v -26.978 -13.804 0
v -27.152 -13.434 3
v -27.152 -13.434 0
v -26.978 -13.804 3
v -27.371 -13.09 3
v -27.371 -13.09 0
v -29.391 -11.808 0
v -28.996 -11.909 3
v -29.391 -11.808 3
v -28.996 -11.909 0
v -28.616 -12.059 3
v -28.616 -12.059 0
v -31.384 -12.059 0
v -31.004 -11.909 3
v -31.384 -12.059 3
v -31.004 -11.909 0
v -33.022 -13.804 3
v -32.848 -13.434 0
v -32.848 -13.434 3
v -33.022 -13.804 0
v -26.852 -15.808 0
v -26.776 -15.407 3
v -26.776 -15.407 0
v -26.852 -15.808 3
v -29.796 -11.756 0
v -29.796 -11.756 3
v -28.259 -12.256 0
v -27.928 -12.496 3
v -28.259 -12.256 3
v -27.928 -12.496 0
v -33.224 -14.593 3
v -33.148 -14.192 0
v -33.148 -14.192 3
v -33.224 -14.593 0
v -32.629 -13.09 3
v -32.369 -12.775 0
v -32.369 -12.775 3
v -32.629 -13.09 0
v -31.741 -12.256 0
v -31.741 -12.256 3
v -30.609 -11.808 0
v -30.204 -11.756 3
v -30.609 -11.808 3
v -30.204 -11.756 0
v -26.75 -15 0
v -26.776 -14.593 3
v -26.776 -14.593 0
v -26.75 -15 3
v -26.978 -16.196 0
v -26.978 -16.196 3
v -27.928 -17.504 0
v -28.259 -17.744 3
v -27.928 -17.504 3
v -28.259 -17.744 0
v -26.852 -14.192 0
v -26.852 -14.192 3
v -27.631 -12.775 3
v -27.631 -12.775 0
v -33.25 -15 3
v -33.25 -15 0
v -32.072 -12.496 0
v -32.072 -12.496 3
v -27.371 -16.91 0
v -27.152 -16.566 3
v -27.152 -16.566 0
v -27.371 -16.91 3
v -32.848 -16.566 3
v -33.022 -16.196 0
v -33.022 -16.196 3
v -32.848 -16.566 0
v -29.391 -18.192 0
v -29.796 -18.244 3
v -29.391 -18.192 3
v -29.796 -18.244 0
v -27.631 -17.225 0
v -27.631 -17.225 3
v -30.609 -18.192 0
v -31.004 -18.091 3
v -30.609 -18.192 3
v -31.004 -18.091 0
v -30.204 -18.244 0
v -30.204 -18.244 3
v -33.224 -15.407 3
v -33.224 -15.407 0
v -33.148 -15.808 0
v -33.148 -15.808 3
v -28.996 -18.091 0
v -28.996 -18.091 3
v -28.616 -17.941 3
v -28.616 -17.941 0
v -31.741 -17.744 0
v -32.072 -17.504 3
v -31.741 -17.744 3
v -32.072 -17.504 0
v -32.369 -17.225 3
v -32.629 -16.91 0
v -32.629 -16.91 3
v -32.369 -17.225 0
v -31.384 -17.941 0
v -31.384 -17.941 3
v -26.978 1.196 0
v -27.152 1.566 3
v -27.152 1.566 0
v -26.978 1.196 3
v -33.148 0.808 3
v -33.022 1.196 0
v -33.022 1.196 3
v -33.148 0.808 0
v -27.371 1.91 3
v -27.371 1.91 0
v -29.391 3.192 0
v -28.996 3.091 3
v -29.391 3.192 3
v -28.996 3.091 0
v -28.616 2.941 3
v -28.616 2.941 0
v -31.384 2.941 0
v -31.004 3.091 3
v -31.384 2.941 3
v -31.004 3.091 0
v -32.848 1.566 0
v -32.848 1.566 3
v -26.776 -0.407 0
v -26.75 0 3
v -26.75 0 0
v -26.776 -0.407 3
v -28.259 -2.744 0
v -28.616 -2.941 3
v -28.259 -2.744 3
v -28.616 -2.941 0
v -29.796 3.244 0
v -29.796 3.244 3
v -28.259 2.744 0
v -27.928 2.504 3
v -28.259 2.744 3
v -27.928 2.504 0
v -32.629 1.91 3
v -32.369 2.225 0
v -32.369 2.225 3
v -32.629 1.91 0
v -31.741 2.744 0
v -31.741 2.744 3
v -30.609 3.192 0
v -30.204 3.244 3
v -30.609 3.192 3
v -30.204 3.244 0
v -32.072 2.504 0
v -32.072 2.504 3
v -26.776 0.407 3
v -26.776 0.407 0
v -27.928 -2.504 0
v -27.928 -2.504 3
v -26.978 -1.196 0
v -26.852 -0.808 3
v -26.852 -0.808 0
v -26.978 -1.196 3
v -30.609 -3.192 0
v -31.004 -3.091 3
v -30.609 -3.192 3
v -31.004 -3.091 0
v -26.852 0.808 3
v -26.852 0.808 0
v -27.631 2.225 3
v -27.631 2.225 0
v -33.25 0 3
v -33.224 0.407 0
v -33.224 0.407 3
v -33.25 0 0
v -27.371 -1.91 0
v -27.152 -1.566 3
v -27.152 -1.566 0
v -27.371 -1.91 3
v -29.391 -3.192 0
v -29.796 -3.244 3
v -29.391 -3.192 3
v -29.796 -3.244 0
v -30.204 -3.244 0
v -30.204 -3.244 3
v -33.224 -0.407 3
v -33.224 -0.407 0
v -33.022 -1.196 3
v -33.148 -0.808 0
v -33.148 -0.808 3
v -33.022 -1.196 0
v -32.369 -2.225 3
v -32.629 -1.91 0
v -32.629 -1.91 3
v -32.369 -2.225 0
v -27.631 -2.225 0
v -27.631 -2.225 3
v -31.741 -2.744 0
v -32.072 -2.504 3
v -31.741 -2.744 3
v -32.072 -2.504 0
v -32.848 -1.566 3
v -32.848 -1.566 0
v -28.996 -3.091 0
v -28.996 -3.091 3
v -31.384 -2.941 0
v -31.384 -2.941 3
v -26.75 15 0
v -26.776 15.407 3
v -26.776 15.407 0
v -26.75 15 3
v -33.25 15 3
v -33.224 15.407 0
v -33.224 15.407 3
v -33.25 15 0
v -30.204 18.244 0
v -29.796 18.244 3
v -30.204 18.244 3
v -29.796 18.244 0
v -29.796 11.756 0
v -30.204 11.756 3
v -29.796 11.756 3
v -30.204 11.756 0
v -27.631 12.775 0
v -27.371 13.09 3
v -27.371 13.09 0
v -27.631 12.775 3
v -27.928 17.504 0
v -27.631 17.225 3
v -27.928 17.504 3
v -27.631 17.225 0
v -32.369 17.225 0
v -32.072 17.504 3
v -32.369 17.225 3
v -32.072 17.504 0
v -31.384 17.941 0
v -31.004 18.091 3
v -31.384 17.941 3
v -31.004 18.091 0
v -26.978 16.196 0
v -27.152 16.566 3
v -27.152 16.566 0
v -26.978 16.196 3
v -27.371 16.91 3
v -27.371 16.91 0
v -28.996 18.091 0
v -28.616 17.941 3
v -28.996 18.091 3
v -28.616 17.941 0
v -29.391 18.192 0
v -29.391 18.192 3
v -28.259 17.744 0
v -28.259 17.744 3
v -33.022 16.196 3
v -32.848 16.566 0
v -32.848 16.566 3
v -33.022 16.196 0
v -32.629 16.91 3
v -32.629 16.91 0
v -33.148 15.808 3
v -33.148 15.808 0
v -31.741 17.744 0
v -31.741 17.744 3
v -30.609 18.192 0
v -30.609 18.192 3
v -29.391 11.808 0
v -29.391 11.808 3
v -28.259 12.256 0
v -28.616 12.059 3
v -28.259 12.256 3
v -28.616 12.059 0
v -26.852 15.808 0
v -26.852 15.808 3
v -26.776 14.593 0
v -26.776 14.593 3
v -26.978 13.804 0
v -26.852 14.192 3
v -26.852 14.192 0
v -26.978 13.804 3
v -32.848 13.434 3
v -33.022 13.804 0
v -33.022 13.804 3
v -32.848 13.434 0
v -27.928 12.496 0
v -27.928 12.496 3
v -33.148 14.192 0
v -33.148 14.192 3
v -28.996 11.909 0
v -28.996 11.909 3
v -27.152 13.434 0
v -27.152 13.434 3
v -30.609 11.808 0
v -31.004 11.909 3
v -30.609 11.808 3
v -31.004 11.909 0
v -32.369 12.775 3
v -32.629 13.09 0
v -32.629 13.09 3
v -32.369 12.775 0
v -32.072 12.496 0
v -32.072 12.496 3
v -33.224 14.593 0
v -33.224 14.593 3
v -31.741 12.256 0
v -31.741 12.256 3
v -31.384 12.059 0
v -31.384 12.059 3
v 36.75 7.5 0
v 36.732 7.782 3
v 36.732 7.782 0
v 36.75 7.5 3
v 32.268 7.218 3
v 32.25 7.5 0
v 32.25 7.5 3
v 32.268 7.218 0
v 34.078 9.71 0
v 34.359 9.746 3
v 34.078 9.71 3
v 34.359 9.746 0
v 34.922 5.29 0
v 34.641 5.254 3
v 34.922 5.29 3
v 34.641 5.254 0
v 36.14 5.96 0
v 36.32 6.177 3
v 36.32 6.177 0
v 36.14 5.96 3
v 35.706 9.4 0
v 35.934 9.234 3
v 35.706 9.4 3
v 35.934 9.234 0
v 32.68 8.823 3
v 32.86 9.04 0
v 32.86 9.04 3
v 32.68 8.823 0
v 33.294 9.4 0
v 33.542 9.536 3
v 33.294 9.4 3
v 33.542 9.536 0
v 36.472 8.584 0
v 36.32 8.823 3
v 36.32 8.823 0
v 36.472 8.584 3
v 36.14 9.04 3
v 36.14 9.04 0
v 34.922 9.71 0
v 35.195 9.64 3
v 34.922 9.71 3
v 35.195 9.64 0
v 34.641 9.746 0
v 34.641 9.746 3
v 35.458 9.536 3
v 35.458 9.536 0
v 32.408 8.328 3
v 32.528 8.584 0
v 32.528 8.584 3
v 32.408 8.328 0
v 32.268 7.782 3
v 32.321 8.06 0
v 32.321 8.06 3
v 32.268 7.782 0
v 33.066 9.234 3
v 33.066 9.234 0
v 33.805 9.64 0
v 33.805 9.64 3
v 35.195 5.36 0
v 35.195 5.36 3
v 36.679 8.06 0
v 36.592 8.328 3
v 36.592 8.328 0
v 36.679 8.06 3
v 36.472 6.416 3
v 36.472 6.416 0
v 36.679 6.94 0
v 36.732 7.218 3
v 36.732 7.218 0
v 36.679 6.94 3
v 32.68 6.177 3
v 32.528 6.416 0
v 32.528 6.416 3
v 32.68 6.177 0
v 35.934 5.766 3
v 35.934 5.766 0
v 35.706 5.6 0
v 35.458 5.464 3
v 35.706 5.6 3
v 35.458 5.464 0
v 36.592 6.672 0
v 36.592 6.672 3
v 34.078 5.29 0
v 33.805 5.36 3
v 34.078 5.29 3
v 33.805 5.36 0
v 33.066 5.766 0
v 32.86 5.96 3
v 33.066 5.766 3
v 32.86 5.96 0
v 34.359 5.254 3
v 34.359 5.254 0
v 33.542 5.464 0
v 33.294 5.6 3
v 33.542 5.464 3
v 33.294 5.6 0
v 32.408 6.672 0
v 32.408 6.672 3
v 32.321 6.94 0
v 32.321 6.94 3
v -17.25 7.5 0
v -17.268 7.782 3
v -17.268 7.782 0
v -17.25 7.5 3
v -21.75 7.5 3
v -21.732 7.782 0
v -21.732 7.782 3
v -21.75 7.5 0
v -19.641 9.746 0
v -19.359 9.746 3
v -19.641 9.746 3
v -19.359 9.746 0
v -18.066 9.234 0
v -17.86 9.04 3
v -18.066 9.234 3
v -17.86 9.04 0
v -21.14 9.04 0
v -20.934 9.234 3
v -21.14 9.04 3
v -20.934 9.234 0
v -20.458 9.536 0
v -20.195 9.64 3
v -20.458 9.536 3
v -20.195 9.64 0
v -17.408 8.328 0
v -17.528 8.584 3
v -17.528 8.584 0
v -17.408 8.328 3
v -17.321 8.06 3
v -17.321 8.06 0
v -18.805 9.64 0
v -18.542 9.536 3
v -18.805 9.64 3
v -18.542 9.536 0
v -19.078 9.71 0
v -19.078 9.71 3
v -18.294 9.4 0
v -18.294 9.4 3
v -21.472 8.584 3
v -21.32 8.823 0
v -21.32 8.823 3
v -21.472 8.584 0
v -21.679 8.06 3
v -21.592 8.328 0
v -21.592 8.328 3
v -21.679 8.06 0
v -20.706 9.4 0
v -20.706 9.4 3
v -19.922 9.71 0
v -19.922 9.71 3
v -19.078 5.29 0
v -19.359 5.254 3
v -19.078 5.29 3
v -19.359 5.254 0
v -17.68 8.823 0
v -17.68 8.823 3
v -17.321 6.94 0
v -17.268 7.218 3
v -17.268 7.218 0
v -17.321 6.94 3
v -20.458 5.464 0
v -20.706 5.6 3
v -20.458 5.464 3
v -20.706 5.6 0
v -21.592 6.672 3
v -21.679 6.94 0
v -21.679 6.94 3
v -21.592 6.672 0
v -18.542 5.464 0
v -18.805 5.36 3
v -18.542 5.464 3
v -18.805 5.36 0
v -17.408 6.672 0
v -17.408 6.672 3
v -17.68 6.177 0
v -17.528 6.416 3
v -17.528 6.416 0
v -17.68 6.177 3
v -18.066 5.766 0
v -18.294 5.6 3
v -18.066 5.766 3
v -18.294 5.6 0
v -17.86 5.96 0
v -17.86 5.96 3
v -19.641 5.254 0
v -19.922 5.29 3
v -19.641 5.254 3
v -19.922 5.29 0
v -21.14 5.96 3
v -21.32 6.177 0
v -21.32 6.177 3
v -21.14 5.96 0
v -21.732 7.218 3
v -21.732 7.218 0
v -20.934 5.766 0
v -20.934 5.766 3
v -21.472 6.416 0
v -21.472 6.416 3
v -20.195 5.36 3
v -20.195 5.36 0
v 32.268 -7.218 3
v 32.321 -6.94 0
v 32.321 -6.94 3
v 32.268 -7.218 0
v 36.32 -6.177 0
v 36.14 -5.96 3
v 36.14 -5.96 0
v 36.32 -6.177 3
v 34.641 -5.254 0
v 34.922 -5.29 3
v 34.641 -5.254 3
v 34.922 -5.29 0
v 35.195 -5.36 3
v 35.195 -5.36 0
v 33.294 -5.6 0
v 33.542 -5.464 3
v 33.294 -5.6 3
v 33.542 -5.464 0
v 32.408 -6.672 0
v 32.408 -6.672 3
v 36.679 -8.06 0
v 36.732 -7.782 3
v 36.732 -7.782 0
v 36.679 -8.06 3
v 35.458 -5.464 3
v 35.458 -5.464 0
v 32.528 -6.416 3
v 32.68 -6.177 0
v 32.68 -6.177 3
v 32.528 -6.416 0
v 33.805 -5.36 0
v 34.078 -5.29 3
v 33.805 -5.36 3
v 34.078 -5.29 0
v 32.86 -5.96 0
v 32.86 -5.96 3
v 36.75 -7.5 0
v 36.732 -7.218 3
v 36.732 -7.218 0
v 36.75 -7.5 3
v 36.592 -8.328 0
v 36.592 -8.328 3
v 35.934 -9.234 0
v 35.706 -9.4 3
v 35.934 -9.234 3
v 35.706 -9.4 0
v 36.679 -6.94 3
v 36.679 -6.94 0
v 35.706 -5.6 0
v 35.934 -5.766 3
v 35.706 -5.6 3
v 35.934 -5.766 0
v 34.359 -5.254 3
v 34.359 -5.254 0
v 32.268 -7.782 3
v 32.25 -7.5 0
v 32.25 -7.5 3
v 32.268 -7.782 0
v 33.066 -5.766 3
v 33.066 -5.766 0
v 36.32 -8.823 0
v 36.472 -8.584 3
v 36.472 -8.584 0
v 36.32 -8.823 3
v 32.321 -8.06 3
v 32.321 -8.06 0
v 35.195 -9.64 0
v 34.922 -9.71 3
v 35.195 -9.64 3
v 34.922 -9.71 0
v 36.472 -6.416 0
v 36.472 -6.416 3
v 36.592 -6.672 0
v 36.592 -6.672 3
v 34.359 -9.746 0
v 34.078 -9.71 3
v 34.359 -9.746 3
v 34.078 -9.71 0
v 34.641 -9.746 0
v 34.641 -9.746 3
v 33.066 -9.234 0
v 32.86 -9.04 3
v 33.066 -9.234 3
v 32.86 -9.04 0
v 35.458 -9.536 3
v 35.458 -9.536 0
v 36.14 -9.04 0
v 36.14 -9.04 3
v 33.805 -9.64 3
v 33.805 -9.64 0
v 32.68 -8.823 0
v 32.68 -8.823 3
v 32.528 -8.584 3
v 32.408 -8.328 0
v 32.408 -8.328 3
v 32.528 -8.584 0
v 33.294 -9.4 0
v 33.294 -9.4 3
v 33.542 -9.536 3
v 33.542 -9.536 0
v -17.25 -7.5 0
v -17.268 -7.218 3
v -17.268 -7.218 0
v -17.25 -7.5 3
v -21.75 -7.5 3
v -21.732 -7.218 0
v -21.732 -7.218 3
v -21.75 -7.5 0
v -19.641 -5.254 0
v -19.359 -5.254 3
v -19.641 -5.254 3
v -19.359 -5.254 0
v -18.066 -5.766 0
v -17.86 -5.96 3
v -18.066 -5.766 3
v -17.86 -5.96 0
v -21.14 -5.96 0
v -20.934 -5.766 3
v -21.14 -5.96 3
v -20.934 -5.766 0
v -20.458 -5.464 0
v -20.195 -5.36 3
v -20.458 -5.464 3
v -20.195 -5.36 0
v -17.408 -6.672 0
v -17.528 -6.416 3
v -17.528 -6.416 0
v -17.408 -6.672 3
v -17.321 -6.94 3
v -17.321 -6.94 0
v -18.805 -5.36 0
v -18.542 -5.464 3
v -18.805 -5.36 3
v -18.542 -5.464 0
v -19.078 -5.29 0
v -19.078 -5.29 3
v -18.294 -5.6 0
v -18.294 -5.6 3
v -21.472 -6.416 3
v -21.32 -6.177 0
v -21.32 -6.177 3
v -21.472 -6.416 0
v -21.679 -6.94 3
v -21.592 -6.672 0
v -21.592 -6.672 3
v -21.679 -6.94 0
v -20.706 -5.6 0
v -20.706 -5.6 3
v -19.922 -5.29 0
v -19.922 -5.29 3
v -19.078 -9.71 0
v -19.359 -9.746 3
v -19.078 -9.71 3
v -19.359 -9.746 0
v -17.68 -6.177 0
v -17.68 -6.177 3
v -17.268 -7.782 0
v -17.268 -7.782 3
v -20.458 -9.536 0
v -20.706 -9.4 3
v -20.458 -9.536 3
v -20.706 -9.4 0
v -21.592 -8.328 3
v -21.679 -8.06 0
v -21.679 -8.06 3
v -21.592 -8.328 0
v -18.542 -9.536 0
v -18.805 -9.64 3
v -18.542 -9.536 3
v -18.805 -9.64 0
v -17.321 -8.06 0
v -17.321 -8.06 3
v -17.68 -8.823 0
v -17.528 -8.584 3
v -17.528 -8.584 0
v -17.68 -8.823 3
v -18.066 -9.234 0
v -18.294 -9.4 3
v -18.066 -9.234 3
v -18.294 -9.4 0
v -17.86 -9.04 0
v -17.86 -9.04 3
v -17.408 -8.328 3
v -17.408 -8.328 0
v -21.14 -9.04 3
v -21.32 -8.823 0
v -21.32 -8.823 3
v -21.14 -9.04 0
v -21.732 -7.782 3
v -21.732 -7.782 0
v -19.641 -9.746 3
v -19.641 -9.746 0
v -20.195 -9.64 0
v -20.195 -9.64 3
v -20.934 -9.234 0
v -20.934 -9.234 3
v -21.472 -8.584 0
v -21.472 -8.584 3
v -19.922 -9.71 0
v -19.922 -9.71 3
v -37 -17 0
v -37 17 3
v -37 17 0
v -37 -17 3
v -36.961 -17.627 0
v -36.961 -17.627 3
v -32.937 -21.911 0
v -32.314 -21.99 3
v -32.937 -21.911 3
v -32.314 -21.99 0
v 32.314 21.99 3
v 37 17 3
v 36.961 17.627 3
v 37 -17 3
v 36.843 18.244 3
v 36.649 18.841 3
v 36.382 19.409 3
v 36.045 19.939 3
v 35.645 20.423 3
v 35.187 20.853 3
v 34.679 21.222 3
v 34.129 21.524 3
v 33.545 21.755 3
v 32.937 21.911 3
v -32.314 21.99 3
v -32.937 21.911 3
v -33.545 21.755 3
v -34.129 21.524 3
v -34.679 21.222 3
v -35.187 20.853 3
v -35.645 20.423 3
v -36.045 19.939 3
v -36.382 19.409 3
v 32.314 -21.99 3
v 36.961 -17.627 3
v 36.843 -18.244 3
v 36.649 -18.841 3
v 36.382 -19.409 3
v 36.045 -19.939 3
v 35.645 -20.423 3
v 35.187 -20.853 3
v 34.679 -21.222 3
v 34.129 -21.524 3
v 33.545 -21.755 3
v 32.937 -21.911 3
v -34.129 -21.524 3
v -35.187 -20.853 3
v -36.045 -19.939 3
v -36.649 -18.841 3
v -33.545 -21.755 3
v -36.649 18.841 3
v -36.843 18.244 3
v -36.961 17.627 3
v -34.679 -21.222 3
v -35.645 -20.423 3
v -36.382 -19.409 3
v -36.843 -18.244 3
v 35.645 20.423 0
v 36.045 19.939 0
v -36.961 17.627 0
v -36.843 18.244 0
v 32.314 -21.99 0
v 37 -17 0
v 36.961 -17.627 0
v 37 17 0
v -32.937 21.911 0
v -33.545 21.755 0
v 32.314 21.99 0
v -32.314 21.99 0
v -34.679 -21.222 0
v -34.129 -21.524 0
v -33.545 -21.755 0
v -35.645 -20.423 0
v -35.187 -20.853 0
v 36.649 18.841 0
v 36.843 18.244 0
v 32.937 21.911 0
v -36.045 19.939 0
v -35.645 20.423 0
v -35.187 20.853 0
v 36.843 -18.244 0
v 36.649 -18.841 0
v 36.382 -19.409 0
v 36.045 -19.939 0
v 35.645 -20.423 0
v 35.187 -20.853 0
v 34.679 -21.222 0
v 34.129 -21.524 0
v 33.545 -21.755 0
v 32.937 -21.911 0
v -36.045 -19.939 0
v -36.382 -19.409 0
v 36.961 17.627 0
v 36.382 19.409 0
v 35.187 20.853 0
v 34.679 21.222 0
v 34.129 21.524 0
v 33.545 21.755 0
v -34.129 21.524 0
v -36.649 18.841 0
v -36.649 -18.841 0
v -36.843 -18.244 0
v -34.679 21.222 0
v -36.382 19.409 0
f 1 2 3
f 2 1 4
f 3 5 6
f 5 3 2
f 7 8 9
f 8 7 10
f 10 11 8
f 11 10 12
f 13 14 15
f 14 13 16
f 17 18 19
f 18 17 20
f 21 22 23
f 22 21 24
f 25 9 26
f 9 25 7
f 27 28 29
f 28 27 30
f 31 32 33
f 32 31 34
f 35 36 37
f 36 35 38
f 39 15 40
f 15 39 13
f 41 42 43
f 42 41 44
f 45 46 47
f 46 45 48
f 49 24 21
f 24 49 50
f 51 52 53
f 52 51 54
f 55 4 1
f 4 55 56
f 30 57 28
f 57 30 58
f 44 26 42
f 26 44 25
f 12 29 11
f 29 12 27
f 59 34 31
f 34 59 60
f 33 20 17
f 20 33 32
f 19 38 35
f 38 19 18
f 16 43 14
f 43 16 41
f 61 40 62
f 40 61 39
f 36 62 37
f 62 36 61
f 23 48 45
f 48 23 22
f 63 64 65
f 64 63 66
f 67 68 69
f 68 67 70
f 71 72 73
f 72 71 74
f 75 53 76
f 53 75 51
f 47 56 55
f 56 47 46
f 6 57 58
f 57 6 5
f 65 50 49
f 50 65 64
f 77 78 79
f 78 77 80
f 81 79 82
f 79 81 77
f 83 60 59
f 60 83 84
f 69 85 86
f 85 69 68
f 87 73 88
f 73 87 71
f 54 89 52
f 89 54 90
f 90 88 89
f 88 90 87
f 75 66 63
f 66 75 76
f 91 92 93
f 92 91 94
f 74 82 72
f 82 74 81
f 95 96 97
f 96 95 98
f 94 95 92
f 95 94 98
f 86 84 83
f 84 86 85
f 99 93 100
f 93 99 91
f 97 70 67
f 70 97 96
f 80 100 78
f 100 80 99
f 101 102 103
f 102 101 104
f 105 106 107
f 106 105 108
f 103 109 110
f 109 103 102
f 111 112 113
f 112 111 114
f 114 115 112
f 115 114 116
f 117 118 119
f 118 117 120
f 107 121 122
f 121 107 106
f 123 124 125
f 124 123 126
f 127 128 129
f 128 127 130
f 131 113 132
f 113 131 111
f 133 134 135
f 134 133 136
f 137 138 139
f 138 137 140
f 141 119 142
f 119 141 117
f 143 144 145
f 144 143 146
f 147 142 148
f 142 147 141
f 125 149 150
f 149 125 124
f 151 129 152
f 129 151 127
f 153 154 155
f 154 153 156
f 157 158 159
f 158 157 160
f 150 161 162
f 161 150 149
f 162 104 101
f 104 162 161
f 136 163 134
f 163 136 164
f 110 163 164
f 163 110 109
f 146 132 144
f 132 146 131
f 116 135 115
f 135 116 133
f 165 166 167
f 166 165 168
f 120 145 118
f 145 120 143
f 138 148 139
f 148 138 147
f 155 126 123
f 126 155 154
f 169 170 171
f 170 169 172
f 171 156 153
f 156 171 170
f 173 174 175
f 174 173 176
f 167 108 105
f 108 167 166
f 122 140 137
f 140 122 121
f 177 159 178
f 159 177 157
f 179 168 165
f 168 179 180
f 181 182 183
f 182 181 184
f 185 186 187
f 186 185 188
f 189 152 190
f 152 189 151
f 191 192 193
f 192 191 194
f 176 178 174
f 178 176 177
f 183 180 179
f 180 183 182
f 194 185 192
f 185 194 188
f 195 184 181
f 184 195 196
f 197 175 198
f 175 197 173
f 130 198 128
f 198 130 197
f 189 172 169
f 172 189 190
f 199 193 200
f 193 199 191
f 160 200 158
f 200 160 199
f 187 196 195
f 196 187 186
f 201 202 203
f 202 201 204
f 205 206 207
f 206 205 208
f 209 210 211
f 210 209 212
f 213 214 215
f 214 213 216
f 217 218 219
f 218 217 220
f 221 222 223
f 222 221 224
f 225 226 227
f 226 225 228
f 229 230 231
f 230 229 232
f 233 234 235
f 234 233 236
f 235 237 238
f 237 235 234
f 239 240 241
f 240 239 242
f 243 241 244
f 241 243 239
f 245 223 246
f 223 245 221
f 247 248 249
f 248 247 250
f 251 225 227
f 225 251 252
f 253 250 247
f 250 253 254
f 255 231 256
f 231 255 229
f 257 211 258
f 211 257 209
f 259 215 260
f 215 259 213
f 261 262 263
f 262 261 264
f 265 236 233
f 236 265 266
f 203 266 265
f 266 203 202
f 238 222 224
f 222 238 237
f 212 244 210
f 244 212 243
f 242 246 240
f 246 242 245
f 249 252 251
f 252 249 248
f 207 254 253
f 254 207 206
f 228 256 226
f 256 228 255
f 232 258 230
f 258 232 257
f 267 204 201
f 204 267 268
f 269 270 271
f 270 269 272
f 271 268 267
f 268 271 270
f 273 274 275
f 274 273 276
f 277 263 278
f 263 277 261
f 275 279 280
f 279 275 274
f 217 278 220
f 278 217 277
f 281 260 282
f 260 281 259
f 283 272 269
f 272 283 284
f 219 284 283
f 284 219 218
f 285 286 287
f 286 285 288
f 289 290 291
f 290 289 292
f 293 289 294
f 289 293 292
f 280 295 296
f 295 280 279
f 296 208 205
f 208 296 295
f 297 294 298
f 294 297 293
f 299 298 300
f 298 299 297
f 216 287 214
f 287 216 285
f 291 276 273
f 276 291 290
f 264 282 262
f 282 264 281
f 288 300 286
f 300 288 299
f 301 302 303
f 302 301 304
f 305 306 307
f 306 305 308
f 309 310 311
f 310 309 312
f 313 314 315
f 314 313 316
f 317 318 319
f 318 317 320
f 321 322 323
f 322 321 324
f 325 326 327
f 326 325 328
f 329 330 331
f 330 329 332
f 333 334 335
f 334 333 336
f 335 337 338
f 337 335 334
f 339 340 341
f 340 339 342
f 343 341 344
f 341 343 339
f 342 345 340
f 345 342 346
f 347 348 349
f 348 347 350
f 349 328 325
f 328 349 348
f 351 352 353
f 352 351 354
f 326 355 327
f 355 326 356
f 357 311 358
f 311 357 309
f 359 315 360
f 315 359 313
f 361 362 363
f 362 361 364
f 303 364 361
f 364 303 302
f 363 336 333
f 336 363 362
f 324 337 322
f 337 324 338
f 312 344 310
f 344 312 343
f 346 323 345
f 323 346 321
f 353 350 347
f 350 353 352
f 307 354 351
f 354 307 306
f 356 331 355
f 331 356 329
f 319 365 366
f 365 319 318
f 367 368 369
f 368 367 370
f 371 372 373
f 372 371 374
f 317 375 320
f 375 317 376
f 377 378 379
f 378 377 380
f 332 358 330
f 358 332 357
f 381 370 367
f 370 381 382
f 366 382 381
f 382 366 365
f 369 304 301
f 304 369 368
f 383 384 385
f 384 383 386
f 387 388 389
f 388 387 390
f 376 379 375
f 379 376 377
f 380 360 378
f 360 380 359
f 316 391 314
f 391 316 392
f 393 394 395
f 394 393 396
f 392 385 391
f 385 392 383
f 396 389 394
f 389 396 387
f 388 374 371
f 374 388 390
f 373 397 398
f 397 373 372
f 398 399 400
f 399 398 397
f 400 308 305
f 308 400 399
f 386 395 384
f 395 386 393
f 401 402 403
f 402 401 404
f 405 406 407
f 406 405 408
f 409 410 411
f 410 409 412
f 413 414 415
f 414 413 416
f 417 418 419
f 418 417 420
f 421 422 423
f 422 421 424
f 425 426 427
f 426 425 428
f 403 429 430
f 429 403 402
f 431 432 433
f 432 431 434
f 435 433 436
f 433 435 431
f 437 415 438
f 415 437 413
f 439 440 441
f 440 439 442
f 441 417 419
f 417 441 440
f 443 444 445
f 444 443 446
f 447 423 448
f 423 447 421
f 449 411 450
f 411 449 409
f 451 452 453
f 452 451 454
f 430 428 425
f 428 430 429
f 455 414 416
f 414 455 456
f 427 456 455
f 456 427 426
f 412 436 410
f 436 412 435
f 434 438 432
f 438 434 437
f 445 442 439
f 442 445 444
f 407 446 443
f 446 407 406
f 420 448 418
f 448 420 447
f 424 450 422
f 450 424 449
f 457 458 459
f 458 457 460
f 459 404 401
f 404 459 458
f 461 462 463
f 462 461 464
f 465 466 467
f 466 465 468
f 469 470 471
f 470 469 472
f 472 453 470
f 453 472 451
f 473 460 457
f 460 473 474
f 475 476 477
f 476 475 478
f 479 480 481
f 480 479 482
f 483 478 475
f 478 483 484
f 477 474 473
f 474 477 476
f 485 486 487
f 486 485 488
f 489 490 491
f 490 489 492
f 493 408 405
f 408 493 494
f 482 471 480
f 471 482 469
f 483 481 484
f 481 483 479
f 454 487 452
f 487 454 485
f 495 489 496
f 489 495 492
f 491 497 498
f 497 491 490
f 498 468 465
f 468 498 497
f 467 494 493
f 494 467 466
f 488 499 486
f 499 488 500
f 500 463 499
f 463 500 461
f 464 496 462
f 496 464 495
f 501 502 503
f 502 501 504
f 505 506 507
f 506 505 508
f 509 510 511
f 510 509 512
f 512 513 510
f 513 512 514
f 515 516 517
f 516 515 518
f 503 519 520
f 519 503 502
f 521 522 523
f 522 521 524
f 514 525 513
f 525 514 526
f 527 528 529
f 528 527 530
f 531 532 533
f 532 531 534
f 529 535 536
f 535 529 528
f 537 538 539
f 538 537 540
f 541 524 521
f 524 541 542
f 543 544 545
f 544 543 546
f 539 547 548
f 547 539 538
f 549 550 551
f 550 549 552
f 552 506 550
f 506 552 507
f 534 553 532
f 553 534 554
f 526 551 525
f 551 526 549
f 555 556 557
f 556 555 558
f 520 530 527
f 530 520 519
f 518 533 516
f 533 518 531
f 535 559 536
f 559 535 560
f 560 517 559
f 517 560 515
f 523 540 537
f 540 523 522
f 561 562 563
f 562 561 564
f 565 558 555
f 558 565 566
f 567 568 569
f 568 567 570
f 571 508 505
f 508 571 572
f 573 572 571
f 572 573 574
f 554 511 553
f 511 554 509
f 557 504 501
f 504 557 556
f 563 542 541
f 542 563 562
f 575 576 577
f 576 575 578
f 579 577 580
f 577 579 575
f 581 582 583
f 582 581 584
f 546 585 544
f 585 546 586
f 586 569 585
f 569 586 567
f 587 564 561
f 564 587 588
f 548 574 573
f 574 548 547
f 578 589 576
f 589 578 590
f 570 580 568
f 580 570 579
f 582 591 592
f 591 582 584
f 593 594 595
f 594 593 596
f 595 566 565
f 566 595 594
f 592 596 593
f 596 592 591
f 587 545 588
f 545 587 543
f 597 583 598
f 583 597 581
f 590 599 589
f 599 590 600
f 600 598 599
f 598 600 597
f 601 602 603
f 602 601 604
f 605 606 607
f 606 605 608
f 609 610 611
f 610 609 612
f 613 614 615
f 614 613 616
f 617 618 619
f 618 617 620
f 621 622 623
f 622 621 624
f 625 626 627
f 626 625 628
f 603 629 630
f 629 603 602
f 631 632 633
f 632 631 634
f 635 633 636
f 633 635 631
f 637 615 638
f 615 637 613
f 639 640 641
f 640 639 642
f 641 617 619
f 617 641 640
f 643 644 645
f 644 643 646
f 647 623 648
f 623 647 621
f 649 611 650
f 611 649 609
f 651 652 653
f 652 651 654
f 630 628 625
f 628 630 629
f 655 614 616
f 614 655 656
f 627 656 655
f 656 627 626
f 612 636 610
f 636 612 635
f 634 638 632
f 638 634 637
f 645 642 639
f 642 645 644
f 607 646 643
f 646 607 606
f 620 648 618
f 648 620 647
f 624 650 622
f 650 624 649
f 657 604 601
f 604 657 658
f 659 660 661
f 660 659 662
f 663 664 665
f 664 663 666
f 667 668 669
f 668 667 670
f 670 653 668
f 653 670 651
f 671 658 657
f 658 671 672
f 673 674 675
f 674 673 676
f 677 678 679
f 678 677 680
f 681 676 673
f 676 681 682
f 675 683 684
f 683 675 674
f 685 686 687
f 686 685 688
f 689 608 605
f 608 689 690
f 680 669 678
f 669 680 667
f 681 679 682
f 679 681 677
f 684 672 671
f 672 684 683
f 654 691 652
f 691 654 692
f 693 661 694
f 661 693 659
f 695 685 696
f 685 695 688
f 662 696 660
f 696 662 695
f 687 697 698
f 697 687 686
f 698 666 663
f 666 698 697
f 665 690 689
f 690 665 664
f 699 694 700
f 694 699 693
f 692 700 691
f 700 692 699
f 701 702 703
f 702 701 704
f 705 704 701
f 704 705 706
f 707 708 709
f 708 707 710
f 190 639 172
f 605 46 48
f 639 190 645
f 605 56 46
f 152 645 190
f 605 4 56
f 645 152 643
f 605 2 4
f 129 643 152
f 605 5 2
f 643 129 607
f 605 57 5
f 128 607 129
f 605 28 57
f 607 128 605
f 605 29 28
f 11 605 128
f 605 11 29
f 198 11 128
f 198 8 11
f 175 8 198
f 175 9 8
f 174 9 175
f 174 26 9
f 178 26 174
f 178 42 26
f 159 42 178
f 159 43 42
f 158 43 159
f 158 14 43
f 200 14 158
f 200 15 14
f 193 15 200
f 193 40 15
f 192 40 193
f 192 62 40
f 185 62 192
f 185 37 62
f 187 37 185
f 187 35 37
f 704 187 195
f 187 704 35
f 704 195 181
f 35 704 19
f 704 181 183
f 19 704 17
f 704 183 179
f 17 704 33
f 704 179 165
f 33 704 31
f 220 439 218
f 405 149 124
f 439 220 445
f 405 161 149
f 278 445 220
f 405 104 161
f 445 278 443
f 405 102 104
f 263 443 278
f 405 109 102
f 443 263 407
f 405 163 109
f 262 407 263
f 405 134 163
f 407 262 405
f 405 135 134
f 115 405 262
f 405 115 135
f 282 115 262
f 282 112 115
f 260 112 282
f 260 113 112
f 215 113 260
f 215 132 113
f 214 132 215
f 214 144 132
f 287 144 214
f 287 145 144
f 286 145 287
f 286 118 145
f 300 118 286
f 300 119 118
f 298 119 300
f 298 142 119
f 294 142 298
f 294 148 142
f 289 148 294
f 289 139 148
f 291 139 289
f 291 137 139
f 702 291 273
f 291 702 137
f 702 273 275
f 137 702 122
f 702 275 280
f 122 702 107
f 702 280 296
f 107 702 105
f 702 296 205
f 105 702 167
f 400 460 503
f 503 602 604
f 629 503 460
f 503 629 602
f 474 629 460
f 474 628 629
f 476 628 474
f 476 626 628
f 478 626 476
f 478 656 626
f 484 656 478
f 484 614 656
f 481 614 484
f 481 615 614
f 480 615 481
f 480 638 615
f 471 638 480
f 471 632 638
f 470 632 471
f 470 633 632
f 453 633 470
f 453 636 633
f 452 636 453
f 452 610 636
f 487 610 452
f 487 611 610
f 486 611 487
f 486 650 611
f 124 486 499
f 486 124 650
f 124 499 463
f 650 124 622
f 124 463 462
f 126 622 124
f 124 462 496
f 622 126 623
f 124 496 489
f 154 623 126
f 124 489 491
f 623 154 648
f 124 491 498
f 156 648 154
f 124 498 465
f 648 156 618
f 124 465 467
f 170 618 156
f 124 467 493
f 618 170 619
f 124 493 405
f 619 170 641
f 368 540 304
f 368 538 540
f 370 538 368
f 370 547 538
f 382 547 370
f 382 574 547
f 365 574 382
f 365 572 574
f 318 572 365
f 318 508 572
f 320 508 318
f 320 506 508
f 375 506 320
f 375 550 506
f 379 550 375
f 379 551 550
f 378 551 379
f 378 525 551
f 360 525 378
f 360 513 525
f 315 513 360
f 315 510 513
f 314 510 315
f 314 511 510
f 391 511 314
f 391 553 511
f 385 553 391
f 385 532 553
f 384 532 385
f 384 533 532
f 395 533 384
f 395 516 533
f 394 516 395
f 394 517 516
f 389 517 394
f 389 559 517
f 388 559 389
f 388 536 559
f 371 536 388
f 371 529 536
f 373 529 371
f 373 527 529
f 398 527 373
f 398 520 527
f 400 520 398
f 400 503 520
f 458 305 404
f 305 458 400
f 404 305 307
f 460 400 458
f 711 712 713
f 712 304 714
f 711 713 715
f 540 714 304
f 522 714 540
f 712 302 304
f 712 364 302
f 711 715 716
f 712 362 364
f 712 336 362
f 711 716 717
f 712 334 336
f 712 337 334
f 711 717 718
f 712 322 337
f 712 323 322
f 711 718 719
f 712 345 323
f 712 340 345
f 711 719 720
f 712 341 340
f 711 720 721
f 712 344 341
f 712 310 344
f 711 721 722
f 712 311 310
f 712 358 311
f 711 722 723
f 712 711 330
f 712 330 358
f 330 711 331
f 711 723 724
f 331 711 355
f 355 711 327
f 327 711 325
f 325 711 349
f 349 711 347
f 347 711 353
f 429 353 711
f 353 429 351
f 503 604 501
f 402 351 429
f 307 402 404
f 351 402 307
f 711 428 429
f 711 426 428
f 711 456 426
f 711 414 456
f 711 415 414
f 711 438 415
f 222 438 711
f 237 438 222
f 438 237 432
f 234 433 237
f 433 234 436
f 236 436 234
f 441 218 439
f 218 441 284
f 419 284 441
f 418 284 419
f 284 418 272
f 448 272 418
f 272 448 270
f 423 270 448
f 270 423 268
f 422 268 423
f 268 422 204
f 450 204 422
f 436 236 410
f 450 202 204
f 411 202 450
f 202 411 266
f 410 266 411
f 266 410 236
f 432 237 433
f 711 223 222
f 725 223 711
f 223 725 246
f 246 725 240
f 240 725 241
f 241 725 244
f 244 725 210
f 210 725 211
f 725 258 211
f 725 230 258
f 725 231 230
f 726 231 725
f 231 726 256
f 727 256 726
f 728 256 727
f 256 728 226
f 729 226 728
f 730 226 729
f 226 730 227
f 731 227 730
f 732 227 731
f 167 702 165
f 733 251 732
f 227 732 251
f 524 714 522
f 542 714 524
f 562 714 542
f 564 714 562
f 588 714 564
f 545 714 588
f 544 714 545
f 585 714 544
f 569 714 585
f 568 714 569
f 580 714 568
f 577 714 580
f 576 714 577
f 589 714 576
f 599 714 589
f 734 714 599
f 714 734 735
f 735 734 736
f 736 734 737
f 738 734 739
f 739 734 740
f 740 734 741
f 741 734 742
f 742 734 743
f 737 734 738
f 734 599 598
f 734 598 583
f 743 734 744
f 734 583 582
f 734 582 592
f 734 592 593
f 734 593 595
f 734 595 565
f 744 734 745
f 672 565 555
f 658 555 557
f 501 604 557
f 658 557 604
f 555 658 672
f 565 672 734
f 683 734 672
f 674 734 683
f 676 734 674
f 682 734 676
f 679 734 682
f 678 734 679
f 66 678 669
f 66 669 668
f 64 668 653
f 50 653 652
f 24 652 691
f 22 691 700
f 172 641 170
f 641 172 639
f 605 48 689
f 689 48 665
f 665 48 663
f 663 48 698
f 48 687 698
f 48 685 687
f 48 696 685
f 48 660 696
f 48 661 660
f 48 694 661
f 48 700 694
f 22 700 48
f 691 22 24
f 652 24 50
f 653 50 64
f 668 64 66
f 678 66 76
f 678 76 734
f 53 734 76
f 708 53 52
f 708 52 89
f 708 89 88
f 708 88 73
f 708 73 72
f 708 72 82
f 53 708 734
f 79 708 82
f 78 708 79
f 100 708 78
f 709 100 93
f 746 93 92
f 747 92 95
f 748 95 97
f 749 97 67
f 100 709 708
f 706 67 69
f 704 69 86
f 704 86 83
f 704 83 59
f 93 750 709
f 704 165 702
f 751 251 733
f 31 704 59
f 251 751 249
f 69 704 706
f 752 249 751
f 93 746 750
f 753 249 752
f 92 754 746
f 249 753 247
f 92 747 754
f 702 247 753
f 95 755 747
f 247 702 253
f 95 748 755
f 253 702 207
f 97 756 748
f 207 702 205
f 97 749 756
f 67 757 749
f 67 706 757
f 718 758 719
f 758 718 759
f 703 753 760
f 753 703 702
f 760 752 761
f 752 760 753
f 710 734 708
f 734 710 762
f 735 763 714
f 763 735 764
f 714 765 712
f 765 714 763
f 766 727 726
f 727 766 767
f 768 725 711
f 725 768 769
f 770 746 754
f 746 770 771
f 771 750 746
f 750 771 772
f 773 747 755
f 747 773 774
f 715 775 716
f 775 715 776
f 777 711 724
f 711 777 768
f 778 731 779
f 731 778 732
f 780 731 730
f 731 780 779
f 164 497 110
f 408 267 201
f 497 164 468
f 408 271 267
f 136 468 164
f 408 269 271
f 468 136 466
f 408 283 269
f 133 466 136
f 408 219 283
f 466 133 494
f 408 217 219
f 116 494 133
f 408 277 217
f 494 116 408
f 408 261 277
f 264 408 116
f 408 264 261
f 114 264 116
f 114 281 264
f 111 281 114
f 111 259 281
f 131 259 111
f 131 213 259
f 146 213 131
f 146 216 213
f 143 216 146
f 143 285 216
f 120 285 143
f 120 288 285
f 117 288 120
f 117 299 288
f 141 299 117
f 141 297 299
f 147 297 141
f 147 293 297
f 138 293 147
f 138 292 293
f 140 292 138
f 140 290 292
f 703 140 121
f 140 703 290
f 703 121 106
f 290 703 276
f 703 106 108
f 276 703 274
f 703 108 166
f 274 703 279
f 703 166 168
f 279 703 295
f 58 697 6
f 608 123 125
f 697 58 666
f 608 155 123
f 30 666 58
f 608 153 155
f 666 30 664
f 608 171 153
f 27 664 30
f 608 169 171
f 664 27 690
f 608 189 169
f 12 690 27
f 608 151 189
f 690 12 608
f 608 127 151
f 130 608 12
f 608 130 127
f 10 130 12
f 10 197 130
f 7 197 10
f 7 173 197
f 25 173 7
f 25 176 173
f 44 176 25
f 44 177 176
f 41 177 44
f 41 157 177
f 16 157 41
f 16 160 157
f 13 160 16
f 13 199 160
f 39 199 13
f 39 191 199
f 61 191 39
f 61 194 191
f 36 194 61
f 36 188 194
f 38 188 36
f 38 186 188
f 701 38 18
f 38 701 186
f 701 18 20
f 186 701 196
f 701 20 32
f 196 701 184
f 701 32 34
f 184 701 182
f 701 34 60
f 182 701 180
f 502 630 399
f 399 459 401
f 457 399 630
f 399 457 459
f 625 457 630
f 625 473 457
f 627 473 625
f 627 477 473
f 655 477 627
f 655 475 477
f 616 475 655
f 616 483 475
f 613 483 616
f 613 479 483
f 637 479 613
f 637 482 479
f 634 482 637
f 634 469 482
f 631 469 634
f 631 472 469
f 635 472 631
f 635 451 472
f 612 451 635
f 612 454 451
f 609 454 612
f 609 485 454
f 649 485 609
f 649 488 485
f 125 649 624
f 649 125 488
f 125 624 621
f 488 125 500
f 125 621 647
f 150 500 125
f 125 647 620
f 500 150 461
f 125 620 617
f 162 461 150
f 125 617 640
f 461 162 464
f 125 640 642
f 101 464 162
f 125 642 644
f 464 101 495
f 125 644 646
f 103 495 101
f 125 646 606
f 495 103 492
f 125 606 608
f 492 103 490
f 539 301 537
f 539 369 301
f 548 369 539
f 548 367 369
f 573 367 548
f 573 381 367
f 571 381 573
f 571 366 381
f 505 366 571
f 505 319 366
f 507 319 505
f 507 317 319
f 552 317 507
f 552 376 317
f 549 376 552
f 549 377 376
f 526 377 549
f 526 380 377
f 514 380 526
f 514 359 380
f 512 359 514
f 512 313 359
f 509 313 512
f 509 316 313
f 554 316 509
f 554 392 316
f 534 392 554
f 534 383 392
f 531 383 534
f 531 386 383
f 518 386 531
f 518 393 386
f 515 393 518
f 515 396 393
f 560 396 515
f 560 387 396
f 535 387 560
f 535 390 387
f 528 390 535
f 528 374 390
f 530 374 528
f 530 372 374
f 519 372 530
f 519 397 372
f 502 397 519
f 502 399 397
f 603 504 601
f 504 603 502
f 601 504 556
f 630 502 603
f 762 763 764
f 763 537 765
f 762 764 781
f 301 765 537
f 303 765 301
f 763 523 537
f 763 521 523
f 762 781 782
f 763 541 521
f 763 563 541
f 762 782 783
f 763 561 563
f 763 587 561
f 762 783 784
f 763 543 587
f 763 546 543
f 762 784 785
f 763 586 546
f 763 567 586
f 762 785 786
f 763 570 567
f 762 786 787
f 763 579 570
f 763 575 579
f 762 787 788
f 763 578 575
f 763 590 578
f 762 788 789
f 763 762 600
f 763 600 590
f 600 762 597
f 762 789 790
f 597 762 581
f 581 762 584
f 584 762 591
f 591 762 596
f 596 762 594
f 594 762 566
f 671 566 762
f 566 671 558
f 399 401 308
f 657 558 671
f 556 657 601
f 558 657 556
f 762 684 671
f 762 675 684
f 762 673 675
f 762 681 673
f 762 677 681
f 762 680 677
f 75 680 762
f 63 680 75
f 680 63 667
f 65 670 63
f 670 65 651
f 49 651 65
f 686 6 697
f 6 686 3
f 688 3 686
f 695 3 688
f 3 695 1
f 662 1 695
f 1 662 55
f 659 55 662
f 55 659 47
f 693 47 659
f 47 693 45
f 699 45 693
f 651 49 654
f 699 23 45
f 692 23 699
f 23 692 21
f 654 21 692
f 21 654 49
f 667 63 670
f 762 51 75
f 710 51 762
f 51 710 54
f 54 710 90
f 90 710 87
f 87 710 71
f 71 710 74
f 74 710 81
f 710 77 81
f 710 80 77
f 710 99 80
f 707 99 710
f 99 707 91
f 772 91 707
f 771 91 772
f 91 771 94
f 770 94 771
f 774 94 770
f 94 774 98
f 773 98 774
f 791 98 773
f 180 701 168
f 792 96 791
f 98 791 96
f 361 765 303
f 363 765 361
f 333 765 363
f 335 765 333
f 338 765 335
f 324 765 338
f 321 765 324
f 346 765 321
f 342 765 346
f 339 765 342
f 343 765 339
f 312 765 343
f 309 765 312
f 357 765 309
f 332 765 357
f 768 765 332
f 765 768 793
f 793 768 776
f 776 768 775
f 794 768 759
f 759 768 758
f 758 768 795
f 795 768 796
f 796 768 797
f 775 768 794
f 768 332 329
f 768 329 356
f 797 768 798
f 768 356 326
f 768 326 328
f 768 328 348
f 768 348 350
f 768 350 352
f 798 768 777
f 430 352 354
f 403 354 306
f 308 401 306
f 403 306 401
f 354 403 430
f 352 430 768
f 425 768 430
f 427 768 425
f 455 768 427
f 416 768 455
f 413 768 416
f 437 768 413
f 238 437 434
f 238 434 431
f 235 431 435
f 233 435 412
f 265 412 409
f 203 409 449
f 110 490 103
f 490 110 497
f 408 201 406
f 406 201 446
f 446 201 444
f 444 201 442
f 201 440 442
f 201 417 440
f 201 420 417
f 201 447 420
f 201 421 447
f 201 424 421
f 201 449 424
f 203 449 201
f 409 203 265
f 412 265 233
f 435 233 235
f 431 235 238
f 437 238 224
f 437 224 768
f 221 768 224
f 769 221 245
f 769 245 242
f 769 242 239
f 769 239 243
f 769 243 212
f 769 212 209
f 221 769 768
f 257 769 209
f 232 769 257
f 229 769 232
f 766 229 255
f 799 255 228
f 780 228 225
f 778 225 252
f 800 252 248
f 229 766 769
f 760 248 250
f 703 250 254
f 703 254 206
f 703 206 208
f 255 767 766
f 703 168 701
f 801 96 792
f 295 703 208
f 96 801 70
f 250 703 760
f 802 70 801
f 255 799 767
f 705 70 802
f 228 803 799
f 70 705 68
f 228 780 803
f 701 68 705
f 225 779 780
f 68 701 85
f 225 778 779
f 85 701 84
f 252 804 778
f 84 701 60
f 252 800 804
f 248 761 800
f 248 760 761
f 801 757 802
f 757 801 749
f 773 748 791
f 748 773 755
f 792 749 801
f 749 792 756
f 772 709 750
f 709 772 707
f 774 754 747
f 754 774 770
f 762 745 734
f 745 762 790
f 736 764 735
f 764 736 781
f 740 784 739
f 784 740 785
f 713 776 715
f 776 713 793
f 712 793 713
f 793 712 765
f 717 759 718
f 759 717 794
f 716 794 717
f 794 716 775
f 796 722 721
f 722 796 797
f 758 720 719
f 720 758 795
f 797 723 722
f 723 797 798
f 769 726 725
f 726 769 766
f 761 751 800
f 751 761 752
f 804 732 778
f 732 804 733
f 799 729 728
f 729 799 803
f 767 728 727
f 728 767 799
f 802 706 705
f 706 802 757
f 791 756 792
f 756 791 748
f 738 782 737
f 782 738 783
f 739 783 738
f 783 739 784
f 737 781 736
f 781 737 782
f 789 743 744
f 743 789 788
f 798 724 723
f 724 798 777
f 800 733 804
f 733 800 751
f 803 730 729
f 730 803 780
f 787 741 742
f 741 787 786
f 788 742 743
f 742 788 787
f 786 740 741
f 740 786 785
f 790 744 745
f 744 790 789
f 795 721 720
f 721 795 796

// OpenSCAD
$fn = 50;


difference() {
	union() {
		translate(v = [0, 0, 0]) {
			rotate(a = [0, 0, 0]) {
				hull() {
					translate(v = [-32.0000000000, 17.0000000000, 0]) {
						rotate(a = [0, 0, 0]) {
							translate(v = [0, 0, 0]) {
								rotate(a = [0, 0, 0]) {
									cylinder(h = 3, r = 5);
								}
							}
						}
					}
					translate(v = [32.0000000000, 17.0000000000, 0]) {
						rotate(a = [0, 0, 0]) {
							translate(v = [0, 0, 0]) {
								rotate(a = [0, 0, 0]) {
									cylinder(h = 3, r = 5);
								}
							}
						}
					}
					translate(v = [-32.0000000000, -17.0000000000, 0]) {
						rotate(a = [0, 0, 0]) {
							translate(v = [0, 0, 0]) {
								rotate(a = [0, 0, 0]) {
									cylinder(h = 3, r = 5);
								}
							}
						}
					}
					translate(v = [32.0000000000, -17.0000000000, 0]) {
						rotate(a = [0, 0, 0]) {
							translate(v = [0, 0, 0]) {
								rotate(a = [0, 0, 0]) {
									cylinder(h = 3, r = 5);
								}
							}
						}
					}
				}
			}
		}
	}
	union() {
		translate(v = [-30.0000000000, -15.0000000000, -125.0000000000]) {
			rotate(a = [0, 0, 0]) {
				cylinder(h = 250, r = 3.2500000000);
			}
		}
		translate(v = [-30.0000000000, 0.0000000000, -125.0000000000]) {
			rotate(a = [0, 0, 0]) {
				cylinder(h = 250, r = 3.2500000000);
			}
		}
		translate(v = [-30.0000000000, 15.0000000000, -125.0000000000]) {
			rotate(a = [0, 0, 0]) {
				cylinder(h = 250, r = 3.2500000000);
			}
		}
		translate(v = [34.5000000000, 7.5000000000, -125.0000000000]) {
			rotate(a = [0, 0, 0]) {
				cylinder(h = 250, r = 2.2500000000);
			}
		}
		translate(v = [-19.5000000000, 7.5000000000, -125.0000000000]) {
			rotate(a = [0, 0, 0]) {
				cylinder(h = 250, r = 2.2500000000);
			}
		}
		translate(v = [34.5000000000, -7.5000000000, -125.0000000000]) {
			rotate(a = [0, 0, 0]) {
				cylinder(h = 250, r = 2.2500000000);
			}
		}
		translate(v = [-19.5000000000, -7.5000000000, -125.0000000000]) {
			rotate(a = [0, 0, 0]) {
				cylinder(h = 250, r = 2.2500000000);
			}
		}
	}
}
